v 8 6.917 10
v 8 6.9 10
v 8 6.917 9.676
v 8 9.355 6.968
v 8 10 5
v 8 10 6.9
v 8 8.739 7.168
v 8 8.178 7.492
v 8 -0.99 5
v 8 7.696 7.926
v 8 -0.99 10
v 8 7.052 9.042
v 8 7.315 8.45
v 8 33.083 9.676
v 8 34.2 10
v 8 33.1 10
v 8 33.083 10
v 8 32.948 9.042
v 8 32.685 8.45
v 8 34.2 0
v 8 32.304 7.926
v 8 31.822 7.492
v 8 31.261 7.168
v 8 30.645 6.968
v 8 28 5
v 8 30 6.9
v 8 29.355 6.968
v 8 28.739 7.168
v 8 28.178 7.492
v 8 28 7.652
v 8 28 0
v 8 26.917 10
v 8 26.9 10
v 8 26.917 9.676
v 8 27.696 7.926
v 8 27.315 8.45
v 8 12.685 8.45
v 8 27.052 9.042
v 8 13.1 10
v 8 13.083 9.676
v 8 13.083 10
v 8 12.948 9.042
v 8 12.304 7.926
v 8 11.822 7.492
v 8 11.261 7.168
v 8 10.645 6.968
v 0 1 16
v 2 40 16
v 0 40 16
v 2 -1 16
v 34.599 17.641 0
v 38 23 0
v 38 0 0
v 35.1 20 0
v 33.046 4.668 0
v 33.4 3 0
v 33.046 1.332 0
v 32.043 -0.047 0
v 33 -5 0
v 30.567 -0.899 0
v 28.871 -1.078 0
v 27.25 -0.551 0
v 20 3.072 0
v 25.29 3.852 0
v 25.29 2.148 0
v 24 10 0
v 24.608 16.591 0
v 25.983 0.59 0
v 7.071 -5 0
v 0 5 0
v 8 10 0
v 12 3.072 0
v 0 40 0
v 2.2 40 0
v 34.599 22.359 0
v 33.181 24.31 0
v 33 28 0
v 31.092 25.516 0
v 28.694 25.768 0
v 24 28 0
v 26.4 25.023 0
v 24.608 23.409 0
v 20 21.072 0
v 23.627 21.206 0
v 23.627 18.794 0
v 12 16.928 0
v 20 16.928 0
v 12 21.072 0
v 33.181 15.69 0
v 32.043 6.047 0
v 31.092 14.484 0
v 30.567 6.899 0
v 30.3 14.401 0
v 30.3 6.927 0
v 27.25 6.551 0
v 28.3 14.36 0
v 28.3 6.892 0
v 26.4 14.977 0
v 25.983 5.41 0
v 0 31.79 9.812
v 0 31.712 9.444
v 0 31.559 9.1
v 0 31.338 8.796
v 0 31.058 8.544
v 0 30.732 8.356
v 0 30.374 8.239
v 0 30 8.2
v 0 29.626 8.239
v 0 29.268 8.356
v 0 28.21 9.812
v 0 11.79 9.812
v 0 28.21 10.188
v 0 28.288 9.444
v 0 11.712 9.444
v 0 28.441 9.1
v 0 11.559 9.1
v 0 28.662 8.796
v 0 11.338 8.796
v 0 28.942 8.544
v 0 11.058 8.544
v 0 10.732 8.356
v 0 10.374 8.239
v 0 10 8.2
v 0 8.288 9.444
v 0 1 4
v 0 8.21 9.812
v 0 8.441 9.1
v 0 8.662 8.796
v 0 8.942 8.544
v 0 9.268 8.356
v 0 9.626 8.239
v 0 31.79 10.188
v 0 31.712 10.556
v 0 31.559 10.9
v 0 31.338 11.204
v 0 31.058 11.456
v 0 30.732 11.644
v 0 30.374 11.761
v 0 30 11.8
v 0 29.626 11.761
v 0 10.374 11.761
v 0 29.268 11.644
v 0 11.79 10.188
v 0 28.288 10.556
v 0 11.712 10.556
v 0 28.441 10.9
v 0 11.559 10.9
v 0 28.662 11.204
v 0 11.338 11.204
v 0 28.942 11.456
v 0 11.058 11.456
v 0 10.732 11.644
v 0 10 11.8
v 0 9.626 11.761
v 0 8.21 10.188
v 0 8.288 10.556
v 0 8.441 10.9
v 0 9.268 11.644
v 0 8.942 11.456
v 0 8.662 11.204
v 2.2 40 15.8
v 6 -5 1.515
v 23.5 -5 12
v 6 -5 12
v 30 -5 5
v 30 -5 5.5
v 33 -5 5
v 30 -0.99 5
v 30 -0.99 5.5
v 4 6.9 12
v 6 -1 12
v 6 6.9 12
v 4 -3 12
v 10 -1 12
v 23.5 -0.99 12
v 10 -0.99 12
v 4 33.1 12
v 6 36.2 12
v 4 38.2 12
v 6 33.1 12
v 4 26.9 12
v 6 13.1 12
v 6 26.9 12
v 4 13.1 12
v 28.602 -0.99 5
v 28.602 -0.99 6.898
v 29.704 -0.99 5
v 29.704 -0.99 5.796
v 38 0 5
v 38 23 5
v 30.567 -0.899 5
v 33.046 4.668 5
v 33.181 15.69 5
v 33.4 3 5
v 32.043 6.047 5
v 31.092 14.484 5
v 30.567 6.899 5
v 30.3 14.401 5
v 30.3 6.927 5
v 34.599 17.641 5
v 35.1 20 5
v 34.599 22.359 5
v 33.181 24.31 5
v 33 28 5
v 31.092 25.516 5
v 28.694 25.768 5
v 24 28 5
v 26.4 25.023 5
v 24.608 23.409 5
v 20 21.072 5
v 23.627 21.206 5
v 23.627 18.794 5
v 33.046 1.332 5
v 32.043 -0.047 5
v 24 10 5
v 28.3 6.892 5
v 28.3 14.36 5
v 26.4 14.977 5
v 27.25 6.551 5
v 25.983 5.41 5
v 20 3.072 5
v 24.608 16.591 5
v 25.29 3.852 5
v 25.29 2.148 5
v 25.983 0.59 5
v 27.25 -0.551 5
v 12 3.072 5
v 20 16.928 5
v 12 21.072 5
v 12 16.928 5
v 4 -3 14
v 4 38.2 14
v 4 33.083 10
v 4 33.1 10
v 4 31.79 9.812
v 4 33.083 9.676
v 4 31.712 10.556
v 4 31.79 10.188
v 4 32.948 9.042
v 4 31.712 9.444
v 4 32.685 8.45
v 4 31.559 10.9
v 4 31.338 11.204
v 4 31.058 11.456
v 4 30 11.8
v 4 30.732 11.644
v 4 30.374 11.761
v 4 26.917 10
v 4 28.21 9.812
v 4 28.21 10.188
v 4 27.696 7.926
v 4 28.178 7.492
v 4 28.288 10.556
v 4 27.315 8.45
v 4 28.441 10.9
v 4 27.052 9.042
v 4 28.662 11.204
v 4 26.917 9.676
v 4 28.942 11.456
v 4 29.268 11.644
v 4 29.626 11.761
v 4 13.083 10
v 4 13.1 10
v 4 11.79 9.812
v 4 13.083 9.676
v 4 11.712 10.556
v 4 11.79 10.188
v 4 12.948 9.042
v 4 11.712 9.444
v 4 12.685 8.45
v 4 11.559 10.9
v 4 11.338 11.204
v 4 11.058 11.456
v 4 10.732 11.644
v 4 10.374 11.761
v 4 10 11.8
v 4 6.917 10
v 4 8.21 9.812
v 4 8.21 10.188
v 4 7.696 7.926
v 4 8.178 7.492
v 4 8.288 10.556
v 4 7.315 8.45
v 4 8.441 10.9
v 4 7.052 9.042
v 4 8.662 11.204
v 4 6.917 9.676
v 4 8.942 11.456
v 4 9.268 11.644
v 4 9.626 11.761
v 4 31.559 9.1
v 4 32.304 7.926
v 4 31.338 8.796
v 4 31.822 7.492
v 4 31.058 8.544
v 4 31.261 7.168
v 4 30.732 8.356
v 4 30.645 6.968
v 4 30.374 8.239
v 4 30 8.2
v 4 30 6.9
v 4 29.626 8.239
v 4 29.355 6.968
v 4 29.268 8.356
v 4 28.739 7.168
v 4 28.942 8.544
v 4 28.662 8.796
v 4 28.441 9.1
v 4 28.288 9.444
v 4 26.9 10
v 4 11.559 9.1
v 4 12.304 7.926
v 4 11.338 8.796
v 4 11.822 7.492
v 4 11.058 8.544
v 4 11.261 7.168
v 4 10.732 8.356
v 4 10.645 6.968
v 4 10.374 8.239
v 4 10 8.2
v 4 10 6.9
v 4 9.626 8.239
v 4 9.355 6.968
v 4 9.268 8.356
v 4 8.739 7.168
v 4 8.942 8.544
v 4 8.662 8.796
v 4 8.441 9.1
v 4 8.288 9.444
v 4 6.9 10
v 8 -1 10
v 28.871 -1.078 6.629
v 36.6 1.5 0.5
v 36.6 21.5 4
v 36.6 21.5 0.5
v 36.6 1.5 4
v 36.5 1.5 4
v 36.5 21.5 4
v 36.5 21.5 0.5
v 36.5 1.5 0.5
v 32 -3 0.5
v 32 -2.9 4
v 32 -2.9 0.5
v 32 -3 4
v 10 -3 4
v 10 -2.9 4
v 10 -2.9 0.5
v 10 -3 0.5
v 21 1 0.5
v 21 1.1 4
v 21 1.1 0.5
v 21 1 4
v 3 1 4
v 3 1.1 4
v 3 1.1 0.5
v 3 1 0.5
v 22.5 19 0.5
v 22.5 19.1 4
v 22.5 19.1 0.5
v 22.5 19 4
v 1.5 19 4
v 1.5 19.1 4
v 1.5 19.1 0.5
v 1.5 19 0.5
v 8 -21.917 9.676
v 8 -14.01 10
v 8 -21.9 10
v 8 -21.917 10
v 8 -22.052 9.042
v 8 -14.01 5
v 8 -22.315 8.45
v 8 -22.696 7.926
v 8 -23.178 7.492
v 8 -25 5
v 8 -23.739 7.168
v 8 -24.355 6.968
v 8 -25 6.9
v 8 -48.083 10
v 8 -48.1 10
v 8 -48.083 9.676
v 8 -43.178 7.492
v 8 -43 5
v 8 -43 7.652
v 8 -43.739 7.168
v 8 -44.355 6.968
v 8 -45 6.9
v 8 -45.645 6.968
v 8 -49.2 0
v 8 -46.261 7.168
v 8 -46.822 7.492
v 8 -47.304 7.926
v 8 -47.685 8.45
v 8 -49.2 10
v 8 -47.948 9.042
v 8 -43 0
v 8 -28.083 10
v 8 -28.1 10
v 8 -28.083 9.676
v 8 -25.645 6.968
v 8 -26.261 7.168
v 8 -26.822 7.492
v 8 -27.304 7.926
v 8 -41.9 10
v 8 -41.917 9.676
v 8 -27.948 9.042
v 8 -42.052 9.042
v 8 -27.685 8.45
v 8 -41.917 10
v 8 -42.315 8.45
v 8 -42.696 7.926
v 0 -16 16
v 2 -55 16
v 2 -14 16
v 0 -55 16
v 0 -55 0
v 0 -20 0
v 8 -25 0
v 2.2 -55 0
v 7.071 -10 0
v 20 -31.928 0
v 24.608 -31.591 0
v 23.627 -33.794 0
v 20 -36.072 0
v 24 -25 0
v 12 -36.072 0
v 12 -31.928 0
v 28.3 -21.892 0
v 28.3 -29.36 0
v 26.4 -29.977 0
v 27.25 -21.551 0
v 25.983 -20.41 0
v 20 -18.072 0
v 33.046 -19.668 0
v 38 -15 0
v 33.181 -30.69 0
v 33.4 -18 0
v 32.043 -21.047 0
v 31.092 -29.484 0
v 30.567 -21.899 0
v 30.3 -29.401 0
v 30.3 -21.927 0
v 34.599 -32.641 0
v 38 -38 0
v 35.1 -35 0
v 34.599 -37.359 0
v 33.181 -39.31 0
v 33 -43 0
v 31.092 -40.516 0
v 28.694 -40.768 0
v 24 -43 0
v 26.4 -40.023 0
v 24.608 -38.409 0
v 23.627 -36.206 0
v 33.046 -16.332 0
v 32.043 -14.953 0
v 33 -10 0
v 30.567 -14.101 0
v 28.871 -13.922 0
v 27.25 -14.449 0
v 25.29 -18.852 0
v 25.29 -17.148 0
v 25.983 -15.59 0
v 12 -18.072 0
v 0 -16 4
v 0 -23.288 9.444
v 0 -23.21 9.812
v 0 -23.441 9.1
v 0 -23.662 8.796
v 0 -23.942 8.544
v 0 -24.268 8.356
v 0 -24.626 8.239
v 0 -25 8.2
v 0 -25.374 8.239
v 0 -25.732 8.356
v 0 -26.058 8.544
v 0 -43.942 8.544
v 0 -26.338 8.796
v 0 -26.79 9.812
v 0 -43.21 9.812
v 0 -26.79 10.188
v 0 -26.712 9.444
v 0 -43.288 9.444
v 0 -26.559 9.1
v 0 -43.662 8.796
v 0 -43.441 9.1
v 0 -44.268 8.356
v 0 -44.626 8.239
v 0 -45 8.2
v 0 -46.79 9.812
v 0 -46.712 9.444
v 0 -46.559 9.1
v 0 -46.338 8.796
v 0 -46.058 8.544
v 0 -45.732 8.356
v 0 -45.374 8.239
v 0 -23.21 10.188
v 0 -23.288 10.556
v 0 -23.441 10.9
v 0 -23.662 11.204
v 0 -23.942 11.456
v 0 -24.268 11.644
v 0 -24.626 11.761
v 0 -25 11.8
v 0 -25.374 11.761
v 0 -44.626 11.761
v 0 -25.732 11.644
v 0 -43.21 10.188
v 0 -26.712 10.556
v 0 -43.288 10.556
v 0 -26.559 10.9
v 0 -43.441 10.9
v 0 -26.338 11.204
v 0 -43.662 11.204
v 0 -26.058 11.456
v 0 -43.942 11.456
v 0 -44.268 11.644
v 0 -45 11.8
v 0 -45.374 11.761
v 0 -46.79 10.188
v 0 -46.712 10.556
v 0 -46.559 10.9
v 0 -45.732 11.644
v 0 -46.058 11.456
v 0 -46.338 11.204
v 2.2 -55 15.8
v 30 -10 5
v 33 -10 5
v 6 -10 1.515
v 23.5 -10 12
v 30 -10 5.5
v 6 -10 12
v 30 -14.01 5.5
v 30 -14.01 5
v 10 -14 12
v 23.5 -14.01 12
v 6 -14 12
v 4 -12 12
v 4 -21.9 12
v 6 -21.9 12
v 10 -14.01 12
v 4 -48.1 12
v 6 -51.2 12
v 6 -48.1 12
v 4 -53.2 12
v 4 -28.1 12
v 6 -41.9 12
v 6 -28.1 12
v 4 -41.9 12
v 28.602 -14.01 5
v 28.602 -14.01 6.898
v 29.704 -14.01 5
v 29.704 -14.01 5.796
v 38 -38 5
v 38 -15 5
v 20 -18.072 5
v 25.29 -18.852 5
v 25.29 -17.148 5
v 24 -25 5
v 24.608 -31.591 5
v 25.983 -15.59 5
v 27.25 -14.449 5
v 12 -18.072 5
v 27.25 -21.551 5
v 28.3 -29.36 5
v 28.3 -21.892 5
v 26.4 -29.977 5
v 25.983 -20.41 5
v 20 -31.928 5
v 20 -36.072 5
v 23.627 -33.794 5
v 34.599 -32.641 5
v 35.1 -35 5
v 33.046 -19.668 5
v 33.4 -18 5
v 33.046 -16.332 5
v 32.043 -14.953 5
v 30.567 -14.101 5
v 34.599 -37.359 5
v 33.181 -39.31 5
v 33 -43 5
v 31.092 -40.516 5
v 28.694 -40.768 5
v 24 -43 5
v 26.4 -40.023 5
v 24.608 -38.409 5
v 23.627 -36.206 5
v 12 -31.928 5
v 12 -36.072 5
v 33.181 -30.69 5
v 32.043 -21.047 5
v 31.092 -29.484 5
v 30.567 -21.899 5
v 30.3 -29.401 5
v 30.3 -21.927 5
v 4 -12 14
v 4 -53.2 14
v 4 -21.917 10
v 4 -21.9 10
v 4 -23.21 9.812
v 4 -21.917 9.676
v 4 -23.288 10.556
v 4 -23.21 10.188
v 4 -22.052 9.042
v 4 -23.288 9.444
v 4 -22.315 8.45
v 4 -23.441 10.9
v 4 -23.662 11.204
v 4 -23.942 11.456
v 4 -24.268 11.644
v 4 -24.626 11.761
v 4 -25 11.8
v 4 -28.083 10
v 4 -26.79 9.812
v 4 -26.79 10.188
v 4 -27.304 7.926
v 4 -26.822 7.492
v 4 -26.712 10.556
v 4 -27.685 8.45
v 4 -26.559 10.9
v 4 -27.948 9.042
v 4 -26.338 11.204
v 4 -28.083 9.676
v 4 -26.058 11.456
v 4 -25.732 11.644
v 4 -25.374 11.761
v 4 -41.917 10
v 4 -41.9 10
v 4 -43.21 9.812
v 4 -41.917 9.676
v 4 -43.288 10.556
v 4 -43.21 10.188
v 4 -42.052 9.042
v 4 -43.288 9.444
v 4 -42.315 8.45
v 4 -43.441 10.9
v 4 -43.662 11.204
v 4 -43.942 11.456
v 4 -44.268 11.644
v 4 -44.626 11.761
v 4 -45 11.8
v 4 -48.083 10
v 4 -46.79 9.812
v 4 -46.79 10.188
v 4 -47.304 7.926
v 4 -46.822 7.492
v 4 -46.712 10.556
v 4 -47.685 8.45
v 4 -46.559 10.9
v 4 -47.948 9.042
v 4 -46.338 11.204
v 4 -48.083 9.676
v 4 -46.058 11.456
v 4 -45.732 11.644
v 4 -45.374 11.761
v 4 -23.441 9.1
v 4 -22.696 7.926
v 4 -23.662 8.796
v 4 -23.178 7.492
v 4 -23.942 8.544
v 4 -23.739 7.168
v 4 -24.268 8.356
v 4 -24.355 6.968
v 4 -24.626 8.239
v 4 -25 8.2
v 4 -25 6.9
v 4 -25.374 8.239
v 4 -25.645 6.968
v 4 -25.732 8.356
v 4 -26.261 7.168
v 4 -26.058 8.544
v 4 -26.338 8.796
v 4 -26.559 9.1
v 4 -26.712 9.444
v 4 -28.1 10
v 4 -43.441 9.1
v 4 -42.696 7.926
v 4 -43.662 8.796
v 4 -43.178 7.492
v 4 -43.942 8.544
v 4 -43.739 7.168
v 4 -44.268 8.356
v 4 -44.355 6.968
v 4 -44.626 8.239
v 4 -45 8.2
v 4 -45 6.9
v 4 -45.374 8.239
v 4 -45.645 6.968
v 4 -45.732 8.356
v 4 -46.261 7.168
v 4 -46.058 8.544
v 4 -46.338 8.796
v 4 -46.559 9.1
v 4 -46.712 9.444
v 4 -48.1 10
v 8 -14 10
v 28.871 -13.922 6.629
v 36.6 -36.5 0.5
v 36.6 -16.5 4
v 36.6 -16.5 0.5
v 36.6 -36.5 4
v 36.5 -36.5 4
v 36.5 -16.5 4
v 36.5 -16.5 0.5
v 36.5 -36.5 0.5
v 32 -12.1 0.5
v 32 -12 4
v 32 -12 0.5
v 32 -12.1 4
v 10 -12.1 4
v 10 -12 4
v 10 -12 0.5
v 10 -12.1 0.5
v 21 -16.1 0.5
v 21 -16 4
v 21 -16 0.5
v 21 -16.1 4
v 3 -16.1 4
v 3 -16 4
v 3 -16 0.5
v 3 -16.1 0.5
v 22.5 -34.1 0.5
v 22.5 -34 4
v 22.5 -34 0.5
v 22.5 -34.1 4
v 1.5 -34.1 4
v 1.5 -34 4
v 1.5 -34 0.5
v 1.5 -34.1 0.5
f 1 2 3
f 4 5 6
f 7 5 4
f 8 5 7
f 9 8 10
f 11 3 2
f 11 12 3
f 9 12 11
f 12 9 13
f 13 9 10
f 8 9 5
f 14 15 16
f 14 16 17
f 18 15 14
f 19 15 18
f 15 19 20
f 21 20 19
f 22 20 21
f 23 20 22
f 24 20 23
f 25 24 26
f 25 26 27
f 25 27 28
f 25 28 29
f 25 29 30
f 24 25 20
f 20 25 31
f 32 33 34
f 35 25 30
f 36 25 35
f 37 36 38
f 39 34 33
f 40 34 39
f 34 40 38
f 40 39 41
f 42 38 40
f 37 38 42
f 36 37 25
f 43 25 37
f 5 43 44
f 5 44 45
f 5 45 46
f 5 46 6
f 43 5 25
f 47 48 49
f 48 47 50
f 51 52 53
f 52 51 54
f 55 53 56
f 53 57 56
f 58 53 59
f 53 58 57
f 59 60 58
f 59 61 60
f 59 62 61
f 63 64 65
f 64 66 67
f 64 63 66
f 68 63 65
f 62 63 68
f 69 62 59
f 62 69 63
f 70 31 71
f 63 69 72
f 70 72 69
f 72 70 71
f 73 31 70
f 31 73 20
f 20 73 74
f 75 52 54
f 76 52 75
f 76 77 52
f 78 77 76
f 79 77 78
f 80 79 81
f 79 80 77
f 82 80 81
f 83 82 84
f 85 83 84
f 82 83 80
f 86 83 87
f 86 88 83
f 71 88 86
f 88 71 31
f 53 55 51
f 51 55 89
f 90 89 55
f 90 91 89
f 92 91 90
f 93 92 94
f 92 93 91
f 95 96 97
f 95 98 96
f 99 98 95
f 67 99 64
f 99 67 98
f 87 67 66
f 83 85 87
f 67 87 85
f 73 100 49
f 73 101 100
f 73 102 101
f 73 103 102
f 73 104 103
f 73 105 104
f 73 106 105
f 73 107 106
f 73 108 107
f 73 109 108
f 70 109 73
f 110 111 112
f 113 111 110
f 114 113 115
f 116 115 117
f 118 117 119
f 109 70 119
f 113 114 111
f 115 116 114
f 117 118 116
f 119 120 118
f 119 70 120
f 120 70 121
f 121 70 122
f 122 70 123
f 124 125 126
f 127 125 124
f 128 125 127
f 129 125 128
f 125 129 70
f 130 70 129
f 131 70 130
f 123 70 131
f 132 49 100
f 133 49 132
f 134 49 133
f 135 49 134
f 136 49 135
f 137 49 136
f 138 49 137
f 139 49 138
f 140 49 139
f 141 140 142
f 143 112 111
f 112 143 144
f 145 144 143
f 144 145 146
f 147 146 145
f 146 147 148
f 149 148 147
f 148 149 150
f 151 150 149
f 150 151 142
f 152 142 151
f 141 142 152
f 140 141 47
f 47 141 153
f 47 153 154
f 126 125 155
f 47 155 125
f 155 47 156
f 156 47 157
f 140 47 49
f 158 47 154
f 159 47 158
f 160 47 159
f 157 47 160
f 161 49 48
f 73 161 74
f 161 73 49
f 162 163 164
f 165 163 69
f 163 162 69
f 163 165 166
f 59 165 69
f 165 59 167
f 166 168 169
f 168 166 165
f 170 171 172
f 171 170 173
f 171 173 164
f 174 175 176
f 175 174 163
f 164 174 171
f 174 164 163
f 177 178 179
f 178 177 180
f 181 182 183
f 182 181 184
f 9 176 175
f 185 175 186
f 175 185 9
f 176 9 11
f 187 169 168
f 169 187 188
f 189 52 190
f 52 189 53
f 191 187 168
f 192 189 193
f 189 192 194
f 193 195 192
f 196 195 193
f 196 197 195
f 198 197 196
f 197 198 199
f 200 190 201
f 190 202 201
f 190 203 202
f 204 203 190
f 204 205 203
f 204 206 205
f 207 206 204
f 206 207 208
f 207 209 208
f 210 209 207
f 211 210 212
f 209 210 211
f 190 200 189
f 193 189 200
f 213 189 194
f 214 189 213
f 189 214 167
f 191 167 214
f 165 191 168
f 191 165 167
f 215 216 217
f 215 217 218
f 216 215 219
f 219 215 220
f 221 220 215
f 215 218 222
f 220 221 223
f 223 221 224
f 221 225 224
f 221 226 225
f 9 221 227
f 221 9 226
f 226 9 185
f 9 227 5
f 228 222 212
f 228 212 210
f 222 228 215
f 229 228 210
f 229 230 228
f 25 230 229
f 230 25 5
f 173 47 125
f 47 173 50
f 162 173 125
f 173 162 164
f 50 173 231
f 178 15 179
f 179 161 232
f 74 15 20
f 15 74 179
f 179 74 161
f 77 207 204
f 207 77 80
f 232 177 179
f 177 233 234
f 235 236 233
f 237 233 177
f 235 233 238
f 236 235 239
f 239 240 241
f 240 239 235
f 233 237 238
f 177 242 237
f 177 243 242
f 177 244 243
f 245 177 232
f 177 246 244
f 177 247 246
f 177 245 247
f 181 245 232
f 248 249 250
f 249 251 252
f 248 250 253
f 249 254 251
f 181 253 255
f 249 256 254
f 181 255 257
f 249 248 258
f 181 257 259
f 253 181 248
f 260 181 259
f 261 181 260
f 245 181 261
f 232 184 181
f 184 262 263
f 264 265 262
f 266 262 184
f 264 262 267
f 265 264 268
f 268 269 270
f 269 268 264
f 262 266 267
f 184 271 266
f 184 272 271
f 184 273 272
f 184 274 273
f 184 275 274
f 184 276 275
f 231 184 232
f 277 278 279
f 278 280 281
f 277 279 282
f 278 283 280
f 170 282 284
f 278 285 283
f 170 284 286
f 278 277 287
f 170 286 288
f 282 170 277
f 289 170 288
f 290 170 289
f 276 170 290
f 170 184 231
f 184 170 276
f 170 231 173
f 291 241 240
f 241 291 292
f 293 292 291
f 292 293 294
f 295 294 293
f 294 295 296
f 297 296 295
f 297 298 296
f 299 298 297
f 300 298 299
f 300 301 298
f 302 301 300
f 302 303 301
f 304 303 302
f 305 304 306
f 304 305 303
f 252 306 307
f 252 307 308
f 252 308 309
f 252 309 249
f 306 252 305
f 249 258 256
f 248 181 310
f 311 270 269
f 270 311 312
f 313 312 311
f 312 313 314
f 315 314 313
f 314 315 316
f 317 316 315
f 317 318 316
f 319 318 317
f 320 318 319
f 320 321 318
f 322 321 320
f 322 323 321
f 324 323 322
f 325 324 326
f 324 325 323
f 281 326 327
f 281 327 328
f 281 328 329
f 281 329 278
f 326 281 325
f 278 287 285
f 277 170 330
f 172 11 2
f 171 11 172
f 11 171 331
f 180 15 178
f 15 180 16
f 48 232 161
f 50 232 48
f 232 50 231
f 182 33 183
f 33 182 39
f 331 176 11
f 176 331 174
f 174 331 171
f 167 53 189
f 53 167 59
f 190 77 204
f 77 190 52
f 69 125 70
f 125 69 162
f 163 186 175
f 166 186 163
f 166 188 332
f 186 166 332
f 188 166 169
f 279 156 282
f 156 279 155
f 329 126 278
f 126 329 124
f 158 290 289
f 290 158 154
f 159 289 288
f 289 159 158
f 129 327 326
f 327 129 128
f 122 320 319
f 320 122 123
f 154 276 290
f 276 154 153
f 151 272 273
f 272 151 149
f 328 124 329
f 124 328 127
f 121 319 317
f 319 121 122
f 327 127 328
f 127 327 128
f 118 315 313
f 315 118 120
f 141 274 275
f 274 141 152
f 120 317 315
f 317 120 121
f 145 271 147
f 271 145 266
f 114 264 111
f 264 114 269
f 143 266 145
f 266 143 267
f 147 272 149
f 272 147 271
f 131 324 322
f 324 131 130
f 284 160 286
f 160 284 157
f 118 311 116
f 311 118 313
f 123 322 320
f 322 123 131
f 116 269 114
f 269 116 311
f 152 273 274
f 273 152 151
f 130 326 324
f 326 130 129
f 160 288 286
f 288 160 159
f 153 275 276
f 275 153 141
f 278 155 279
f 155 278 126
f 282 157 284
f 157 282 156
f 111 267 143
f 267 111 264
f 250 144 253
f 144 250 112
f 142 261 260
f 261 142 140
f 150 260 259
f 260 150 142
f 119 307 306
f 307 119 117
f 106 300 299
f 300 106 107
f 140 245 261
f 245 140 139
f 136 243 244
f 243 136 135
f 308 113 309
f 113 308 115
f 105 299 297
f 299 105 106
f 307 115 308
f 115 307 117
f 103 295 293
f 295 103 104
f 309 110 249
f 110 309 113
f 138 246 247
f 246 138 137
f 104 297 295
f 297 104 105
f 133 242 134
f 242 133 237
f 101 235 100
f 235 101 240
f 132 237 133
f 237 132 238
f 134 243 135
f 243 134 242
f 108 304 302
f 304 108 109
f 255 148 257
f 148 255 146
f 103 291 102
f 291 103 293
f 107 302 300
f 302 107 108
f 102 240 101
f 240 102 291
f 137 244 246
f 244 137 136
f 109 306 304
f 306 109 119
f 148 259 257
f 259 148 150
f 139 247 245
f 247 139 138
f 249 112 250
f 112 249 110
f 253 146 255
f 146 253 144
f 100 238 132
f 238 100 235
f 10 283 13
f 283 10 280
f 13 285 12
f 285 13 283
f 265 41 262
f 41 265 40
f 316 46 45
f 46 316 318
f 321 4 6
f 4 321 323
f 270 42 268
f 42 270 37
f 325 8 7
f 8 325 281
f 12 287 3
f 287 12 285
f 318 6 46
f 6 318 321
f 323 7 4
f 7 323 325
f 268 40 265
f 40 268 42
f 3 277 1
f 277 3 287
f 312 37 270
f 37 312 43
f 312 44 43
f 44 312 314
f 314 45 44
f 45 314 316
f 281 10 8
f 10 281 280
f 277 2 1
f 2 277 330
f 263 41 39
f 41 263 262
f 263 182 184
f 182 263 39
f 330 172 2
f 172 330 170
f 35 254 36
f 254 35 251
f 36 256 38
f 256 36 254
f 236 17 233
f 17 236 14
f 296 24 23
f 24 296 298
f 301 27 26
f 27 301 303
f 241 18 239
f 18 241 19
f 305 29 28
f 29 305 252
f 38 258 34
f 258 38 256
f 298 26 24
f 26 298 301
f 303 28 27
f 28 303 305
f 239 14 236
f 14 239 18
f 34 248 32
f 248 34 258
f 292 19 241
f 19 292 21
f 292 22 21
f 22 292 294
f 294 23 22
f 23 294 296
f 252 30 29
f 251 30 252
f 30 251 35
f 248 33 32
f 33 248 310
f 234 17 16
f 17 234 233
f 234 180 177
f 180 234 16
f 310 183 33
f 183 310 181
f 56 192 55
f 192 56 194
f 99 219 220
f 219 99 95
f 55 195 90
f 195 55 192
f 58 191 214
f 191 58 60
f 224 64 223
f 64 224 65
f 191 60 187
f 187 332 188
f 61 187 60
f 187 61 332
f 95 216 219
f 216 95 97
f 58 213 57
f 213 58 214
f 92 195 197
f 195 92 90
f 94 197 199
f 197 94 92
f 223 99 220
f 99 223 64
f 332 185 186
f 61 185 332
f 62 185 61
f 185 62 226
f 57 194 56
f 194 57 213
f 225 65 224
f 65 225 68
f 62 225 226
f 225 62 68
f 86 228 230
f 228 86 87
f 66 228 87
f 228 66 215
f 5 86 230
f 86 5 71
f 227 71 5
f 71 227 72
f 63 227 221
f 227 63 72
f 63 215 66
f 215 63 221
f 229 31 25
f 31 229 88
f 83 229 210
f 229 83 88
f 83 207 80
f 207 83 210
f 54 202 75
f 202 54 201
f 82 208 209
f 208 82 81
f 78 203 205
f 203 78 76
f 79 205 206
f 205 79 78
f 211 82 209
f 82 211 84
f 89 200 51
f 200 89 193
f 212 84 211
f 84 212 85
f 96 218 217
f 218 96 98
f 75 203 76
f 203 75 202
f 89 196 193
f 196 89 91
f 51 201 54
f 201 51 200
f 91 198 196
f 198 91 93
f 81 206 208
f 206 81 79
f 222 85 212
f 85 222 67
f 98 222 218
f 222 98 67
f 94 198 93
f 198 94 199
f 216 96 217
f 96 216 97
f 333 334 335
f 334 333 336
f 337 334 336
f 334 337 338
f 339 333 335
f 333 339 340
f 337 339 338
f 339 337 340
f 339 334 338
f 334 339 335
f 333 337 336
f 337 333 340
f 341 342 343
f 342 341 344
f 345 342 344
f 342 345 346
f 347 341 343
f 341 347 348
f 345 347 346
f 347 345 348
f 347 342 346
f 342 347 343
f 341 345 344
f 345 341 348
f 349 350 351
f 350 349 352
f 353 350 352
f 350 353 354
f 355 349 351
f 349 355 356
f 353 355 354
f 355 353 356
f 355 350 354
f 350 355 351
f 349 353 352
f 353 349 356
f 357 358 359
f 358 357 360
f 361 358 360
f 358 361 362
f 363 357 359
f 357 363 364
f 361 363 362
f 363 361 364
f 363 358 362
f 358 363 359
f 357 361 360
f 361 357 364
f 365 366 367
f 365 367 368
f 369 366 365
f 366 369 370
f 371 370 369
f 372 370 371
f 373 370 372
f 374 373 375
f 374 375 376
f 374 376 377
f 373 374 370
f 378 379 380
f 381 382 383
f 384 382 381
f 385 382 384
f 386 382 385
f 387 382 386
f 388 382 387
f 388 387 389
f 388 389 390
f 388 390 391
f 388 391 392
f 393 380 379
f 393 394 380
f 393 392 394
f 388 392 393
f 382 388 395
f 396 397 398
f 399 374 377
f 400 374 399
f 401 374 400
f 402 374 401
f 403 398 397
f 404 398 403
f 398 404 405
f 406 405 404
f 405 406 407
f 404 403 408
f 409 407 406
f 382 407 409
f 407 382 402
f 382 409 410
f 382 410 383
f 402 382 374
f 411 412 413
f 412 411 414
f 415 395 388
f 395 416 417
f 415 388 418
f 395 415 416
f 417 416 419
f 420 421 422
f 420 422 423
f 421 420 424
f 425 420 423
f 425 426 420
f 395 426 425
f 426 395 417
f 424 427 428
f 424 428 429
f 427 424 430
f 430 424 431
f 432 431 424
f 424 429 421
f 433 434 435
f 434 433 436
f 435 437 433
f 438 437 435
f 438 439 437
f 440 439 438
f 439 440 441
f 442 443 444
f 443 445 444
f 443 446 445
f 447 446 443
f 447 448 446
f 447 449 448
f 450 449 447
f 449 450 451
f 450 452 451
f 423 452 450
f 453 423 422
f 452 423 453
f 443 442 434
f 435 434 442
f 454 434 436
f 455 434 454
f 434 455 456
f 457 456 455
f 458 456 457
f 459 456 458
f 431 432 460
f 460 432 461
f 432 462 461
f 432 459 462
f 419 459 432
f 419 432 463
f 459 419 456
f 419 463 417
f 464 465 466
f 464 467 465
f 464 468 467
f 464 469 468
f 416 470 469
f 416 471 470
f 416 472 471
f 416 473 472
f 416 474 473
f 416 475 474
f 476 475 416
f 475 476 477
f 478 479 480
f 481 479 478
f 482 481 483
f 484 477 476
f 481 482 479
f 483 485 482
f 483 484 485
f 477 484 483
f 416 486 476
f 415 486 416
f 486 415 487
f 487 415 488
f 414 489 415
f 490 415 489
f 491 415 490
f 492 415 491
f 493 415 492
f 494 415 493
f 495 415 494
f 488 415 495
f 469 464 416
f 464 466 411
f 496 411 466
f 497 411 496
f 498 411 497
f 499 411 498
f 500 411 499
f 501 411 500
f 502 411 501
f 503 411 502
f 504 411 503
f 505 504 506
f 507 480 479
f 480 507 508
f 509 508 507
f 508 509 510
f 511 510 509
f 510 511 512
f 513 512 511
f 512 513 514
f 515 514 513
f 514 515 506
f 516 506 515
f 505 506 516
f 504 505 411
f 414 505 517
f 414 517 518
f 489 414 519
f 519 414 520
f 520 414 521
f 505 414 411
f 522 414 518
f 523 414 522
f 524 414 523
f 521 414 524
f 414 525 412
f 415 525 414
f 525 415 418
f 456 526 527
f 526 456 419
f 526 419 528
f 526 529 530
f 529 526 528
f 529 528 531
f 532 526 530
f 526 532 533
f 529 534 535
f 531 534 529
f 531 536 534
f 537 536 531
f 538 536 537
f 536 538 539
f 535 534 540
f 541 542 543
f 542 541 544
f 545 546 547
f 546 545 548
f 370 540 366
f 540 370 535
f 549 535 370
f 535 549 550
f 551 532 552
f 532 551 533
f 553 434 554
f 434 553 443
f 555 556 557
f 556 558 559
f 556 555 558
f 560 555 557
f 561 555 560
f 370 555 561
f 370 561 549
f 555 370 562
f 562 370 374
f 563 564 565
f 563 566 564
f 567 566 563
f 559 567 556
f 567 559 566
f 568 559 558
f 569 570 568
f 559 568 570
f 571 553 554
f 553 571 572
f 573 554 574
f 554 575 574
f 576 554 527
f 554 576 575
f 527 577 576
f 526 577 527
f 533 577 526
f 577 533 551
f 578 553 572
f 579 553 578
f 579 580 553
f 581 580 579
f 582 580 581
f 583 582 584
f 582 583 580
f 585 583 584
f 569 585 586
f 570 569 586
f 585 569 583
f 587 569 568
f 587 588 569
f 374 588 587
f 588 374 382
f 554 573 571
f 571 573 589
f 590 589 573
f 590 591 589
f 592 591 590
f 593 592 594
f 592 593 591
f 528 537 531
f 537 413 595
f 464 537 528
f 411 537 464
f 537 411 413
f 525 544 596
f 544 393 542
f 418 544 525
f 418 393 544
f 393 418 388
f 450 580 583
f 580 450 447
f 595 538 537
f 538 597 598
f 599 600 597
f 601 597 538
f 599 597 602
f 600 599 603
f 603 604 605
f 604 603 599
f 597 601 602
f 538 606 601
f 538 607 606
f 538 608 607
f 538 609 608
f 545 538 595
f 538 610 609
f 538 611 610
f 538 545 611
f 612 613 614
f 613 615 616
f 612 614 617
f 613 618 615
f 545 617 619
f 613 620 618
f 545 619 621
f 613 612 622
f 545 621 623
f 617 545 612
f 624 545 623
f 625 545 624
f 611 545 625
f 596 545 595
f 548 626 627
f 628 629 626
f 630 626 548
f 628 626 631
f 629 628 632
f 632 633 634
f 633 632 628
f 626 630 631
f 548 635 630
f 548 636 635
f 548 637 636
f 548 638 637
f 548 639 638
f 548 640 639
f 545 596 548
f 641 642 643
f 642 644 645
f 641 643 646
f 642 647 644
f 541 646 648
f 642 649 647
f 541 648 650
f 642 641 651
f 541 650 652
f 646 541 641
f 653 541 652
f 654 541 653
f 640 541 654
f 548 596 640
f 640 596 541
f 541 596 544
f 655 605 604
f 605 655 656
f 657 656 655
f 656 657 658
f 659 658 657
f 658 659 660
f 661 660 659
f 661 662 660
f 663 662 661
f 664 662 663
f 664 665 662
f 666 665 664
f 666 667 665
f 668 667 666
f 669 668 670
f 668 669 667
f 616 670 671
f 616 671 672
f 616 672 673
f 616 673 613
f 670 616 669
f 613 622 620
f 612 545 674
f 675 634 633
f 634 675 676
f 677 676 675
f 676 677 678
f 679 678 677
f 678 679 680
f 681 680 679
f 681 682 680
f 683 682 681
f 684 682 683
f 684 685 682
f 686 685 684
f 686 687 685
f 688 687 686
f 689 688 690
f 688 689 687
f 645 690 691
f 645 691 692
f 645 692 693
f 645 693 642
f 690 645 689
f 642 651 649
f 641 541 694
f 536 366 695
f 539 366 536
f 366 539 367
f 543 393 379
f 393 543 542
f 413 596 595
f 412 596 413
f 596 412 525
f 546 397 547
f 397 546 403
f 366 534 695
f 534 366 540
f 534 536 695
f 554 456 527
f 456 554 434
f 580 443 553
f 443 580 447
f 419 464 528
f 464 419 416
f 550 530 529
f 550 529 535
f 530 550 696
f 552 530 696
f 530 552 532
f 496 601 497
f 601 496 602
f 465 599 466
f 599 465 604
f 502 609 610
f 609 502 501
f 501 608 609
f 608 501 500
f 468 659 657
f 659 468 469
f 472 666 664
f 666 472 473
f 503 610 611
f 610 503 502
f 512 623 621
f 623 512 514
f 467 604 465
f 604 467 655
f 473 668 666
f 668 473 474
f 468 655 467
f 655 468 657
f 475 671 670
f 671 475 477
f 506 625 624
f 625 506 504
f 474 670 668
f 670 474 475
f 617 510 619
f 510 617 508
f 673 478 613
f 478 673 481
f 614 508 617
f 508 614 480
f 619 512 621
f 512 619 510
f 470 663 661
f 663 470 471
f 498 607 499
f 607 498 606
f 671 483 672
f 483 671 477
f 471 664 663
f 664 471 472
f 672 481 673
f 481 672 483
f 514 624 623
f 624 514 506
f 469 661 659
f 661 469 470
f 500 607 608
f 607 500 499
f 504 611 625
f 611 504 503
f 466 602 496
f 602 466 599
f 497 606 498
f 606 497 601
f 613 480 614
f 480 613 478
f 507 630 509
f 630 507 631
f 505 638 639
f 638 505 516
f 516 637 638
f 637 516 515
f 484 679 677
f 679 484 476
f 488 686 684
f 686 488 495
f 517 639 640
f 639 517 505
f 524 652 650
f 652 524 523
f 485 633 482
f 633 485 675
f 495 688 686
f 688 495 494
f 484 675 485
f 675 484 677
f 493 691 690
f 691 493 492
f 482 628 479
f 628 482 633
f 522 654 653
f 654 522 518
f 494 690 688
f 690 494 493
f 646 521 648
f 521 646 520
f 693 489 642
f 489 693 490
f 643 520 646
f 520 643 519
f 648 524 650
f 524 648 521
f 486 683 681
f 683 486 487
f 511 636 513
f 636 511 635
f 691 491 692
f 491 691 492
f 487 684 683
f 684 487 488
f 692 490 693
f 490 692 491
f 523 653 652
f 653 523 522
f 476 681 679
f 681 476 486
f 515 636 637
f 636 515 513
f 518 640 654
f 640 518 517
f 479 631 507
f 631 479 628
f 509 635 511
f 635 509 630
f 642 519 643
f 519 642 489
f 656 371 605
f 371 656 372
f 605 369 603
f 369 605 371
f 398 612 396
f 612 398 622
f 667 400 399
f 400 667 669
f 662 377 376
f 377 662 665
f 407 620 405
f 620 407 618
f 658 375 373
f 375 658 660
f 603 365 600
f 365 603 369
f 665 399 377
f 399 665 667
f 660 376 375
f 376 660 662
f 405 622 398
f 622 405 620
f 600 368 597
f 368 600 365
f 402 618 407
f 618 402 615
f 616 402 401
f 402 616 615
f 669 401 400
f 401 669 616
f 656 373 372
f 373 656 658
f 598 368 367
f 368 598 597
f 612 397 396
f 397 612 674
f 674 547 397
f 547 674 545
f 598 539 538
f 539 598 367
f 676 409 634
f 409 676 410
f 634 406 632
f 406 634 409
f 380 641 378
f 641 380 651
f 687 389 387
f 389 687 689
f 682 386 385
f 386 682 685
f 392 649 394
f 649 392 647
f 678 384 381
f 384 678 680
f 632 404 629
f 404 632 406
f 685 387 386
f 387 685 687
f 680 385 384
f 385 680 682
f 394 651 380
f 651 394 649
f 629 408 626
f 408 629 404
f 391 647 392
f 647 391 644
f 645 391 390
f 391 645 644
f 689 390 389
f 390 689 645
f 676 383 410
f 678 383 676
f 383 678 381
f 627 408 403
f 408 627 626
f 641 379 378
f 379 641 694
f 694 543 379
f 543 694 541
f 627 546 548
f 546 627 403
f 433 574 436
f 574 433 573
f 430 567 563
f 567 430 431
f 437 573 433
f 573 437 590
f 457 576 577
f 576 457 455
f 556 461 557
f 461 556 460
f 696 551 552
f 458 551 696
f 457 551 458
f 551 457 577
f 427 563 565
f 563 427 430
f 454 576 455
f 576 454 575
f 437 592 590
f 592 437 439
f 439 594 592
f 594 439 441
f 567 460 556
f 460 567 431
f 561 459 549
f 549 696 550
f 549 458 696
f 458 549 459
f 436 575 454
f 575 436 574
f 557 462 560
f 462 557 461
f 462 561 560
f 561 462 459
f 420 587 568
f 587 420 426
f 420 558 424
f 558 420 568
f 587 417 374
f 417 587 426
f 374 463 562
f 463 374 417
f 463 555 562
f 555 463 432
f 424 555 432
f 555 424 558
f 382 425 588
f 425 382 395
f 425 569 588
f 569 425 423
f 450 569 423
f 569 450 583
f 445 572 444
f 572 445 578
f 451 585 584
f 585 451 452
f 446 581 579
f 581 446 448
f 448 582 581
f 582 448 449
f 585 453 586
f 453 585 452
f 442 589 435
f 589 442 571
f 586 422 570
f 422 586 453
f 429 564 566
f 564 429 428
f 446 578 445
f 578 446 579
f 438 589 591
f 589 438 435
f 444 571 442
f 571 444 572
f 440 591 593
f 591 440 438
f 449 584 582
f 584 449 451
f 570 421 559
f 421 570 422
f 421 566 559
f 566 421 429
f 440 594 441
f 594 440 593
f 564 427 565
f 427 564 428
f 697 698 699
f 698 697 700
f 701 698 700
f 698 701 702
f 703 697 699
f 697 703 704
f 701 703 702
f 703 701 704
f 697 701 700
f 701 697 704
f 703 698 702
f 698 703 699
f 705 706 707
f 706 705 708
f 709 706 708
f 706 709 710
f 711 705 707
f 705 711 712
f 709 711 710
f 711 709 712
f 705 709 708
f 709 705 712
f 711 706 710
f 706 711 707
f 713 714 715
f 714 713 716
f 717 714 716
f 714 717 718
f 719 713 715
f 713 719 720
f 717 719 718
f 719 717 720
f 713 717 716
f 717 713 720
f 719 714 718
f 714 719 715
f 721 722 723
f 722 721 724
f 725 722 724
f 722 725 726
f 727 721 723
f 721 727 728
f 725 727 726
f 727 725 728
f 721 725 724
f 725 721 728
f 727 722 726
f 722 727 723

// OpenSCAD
// file: ../../Dollo/NEW_long_ties/globals.scad
/*
Most things in this file is represented as one millimeter, so keep that in mind while changing things.
Some of the setting are not mm but at variables that you can set, such as 2*x=2x and you are setting what x is.
I will try to specify when things are variables and not exact measurements.
*/

// printer slop
slop = 0.15;

obj_leg = 30;
leg_length = 5.5;
small_number = 0.001;
metal_core_rode_global = 5;


///////////////// number of holes /////////////////////
z_hole_number = 8;
other_holes = 8;

///////////////// Pins /////////////////////

//pins that poke out
ball_size = 10;
pin_height = 20;
pin_diameter = 6;


//holes
hole_ball_size = ball_size;
hole_pin_height = pin_height;
hole_pin_diameter = pin_diameter;

///////////////// Z THINGS /////////////////////

berring_slot_width = 7.5;
berring_slot_depth = 6.5;
metal_core_rode = 5;

///////////////// X THINGS /////////////////////

//male dove tails
male_dove_max_width=8;
male_dove_min_width=5;
male_dove_depth=5;
male_dove_height=obj_leg/2;

function scaled_male_dove_max_width() = male_dove_max_width - slop;
function scaled_male_dove_min_width() = male_dove_min_width - slop;
function scaled_male_dove_depth() = male_dove_depth - slop;

//female dove tails, this is found on the y mounts
girl_max_width=11;
girl_min_width=5;
girl_depth=5;
girl_height=obj_leg;


///////////////// Y THINGS /////////////////////
/*
The Y is so normal that all of those global variables at the top should change all of the setting in it, this section is set her incase there are variables set in the future development of this project.
*/

// stepper
motor_side_length = 43.2;
motor_bolt_hole_distance = 31;
motor_center_hole = 23;
motor_shaft_dia = 5;
motor_shaft_hole_dia = 5+2*slop;

// bolts etc.
bolt_hole_dia = 3+2*slop;
bolt_head_hole_dia = 5.8;

m4_bolt_hole_dia = 4+2*slop;
m4_bolt_head_hole_dia = 6.8+2*slop;


m3_nut_side = 5.65;
m3_nut_height = 2.3;
m4_nut_side = 6.85;
m4_nut_height = 3.1;

// threaded rod
lifter_rod_diam = 9.86;
hole_threaded_rod = lifter_rod_diam+2*slop;

// for the extensions
metal_rod_size = 9;
// main file
// PRUSA iteration3
// Z axis top holder
// GNU GPL v3
// Josef Průša <iam@josefprusa.cz> and contributors
// http://www.reprap.org/wiki/Prusa_Mendel
// http://prusamendel.org

use <../../Dollo/NEW_long_ties/include.scad>;

module z_top_base(){
    translate([0,-5,0]) cube([8,45,16]); // plate touching the base
    translate([0,-5,0]) cube([30,4.01,12]); // plate touching the base
    translate([0,-5,0]) cube([38,45,5]); // plate touching the base   
}

module z_top_fancy(){
    // Corner cutouts
    translate([0.5,0.5,0])         rotate([0,0,-45-180]) translate([-15,0,-1]) cube([30,30,51]);    

    translate([-13,40+5+10.2,0])   rotate([0,0,-45-0])   translate([0,0,-1])   cube([30,30,51]); // frame side angle
    translate([8,28,0]) translate([0,0,-1]) cube([50,50,51]);       

    translate([4,0,12]) rotate([0,0, 0])    translate([0,-5,0]) cube([30,50,30]);          
    translate([6,0,12]) rotate([0,-45, 0])  translate([0,-5,0]) cube([30,50,30]);
    translate([8,4,10]) rotate([0,-45, 0])  translate([0,-5,0]) cube([30,50,30]);

    translate([38-2.5,-5+2.5,0])   rotate([0,0,-45-90]) translate([-15,0,-1]) cube([30,30,51]);         
    translate([35,26,0])           rotate([0,0,-45])    translate([-15,0,-1]) cube([30,30,51]); // outer corner
    translate([0,0,5])             rotate([45+180,0,0]) rotate([0,0,-45+90])  translate([0,0,-15]) cube([30,30,30]);

    // Stiffner cut out
    translate([30,0,5.5]) rotate([0,-45,0]) translate([0,-5,0]) cube([30,50,30]);
}

module z_top_holes(){
    // Screw holes frame
    translate([-1,10,10])      rotate([0,90,0]) cylinder(h = 20, r=1.8, $fn=30);
    translate([-1,10+20,10])   rotate([0,90,0]) cylinder(h = 20, r=1.8, $fn=30);
        

    // Screw heads
    translate([4,10,10]) rotate([0,90,0]) cylinder(h = 20, r=3.1, $fn=30);
    translate([4,10-3.1,10]) cube([10,6.2,10]);
    translate([4,10+20,10])  rotate([0,90,0]) cylinder(h = 20, r=3.1, $fn=30);
    translate([4,10+20-3.1,10]) cube([10,6.2,10]);

    // Z rod holder
    translate([25+4.3,3,-1]) rotate([0,0,0]) cylinder(h = 50, r=4.1, $fn=15);

    
    // material saving cut
    translate([16,10,-1]) rotate([0,0,0]) cylinder(h = 50, r=8, $fn=6);  
    translate([16,28,-1]) rotate([0,0,0]) cylinder(h = 50, r=8, $fn=6);  
    translate([25+4.3,3+17,-1]) rotate([0,0,0]) cylinder(h = 50, r=5.8, $fn=15); // screw hole

    translate([25+4.3-1,3,-1]) cube([2,15,7]); // it's bit up because it helps with printing
    
    //selective infill
    translate([36.5,1.5,0.5]) cube([0.1,20,3.5]);    
    translate([10,-3,0.5]) cube([22,0.1,3.5]);  
    translate([3,1,0.5]) cube([18,0.1,3.5]);    
    translate([1.5,19,0.5]) cube([21,0.1,3.5]); 
        
 
}

module z_top_right(){
    difference(){
        z_top_base();
        z_top_fancy();
        z_top_holes();
    }
}

module z_top_left(){
    translate([0,-15,0]) mirror([0,1,0]) 
    difference(){
        z_top_base();
        z_top_fancy();
        z_top_holes();
    }
}

module dollo_z_top_right() {
    difference() {
        union() {
            z_top_right();
            //translate([-22.3,-3,0]) cube([30.3,46,40]);
            translate([-22.3,-3,0]) chamfered_cube(30.3,46,25,2);
            translate([-20,2,0]) chamfered_cylinder(10,25,2,$fn=50);
            translate([-20,38,0]) chamfered_cylinder(10,25,2,$fn=50);
        }
        translate([-32.3,5,-1]) cube([30,30,60]);
        translate([-2.3,20,-1]) rotate([0,0,-90]) male_dovetail(50);
        translate([-17.3,35,-1]) rotate([0,0,0]) male_dovetail(50);
        translate([-17.3,5,-1]) rotate([0,0,180]) male_dovetail(50);
    }
}

module dollo_z_top_left() {
    translate([0,-15,0]) mirror([0,1,0]) dollo_z_top_right();
}

// Final parts
z_top_left();
z_top_right();

//dollo_z_top_right();
//dollo_z_top_left();
